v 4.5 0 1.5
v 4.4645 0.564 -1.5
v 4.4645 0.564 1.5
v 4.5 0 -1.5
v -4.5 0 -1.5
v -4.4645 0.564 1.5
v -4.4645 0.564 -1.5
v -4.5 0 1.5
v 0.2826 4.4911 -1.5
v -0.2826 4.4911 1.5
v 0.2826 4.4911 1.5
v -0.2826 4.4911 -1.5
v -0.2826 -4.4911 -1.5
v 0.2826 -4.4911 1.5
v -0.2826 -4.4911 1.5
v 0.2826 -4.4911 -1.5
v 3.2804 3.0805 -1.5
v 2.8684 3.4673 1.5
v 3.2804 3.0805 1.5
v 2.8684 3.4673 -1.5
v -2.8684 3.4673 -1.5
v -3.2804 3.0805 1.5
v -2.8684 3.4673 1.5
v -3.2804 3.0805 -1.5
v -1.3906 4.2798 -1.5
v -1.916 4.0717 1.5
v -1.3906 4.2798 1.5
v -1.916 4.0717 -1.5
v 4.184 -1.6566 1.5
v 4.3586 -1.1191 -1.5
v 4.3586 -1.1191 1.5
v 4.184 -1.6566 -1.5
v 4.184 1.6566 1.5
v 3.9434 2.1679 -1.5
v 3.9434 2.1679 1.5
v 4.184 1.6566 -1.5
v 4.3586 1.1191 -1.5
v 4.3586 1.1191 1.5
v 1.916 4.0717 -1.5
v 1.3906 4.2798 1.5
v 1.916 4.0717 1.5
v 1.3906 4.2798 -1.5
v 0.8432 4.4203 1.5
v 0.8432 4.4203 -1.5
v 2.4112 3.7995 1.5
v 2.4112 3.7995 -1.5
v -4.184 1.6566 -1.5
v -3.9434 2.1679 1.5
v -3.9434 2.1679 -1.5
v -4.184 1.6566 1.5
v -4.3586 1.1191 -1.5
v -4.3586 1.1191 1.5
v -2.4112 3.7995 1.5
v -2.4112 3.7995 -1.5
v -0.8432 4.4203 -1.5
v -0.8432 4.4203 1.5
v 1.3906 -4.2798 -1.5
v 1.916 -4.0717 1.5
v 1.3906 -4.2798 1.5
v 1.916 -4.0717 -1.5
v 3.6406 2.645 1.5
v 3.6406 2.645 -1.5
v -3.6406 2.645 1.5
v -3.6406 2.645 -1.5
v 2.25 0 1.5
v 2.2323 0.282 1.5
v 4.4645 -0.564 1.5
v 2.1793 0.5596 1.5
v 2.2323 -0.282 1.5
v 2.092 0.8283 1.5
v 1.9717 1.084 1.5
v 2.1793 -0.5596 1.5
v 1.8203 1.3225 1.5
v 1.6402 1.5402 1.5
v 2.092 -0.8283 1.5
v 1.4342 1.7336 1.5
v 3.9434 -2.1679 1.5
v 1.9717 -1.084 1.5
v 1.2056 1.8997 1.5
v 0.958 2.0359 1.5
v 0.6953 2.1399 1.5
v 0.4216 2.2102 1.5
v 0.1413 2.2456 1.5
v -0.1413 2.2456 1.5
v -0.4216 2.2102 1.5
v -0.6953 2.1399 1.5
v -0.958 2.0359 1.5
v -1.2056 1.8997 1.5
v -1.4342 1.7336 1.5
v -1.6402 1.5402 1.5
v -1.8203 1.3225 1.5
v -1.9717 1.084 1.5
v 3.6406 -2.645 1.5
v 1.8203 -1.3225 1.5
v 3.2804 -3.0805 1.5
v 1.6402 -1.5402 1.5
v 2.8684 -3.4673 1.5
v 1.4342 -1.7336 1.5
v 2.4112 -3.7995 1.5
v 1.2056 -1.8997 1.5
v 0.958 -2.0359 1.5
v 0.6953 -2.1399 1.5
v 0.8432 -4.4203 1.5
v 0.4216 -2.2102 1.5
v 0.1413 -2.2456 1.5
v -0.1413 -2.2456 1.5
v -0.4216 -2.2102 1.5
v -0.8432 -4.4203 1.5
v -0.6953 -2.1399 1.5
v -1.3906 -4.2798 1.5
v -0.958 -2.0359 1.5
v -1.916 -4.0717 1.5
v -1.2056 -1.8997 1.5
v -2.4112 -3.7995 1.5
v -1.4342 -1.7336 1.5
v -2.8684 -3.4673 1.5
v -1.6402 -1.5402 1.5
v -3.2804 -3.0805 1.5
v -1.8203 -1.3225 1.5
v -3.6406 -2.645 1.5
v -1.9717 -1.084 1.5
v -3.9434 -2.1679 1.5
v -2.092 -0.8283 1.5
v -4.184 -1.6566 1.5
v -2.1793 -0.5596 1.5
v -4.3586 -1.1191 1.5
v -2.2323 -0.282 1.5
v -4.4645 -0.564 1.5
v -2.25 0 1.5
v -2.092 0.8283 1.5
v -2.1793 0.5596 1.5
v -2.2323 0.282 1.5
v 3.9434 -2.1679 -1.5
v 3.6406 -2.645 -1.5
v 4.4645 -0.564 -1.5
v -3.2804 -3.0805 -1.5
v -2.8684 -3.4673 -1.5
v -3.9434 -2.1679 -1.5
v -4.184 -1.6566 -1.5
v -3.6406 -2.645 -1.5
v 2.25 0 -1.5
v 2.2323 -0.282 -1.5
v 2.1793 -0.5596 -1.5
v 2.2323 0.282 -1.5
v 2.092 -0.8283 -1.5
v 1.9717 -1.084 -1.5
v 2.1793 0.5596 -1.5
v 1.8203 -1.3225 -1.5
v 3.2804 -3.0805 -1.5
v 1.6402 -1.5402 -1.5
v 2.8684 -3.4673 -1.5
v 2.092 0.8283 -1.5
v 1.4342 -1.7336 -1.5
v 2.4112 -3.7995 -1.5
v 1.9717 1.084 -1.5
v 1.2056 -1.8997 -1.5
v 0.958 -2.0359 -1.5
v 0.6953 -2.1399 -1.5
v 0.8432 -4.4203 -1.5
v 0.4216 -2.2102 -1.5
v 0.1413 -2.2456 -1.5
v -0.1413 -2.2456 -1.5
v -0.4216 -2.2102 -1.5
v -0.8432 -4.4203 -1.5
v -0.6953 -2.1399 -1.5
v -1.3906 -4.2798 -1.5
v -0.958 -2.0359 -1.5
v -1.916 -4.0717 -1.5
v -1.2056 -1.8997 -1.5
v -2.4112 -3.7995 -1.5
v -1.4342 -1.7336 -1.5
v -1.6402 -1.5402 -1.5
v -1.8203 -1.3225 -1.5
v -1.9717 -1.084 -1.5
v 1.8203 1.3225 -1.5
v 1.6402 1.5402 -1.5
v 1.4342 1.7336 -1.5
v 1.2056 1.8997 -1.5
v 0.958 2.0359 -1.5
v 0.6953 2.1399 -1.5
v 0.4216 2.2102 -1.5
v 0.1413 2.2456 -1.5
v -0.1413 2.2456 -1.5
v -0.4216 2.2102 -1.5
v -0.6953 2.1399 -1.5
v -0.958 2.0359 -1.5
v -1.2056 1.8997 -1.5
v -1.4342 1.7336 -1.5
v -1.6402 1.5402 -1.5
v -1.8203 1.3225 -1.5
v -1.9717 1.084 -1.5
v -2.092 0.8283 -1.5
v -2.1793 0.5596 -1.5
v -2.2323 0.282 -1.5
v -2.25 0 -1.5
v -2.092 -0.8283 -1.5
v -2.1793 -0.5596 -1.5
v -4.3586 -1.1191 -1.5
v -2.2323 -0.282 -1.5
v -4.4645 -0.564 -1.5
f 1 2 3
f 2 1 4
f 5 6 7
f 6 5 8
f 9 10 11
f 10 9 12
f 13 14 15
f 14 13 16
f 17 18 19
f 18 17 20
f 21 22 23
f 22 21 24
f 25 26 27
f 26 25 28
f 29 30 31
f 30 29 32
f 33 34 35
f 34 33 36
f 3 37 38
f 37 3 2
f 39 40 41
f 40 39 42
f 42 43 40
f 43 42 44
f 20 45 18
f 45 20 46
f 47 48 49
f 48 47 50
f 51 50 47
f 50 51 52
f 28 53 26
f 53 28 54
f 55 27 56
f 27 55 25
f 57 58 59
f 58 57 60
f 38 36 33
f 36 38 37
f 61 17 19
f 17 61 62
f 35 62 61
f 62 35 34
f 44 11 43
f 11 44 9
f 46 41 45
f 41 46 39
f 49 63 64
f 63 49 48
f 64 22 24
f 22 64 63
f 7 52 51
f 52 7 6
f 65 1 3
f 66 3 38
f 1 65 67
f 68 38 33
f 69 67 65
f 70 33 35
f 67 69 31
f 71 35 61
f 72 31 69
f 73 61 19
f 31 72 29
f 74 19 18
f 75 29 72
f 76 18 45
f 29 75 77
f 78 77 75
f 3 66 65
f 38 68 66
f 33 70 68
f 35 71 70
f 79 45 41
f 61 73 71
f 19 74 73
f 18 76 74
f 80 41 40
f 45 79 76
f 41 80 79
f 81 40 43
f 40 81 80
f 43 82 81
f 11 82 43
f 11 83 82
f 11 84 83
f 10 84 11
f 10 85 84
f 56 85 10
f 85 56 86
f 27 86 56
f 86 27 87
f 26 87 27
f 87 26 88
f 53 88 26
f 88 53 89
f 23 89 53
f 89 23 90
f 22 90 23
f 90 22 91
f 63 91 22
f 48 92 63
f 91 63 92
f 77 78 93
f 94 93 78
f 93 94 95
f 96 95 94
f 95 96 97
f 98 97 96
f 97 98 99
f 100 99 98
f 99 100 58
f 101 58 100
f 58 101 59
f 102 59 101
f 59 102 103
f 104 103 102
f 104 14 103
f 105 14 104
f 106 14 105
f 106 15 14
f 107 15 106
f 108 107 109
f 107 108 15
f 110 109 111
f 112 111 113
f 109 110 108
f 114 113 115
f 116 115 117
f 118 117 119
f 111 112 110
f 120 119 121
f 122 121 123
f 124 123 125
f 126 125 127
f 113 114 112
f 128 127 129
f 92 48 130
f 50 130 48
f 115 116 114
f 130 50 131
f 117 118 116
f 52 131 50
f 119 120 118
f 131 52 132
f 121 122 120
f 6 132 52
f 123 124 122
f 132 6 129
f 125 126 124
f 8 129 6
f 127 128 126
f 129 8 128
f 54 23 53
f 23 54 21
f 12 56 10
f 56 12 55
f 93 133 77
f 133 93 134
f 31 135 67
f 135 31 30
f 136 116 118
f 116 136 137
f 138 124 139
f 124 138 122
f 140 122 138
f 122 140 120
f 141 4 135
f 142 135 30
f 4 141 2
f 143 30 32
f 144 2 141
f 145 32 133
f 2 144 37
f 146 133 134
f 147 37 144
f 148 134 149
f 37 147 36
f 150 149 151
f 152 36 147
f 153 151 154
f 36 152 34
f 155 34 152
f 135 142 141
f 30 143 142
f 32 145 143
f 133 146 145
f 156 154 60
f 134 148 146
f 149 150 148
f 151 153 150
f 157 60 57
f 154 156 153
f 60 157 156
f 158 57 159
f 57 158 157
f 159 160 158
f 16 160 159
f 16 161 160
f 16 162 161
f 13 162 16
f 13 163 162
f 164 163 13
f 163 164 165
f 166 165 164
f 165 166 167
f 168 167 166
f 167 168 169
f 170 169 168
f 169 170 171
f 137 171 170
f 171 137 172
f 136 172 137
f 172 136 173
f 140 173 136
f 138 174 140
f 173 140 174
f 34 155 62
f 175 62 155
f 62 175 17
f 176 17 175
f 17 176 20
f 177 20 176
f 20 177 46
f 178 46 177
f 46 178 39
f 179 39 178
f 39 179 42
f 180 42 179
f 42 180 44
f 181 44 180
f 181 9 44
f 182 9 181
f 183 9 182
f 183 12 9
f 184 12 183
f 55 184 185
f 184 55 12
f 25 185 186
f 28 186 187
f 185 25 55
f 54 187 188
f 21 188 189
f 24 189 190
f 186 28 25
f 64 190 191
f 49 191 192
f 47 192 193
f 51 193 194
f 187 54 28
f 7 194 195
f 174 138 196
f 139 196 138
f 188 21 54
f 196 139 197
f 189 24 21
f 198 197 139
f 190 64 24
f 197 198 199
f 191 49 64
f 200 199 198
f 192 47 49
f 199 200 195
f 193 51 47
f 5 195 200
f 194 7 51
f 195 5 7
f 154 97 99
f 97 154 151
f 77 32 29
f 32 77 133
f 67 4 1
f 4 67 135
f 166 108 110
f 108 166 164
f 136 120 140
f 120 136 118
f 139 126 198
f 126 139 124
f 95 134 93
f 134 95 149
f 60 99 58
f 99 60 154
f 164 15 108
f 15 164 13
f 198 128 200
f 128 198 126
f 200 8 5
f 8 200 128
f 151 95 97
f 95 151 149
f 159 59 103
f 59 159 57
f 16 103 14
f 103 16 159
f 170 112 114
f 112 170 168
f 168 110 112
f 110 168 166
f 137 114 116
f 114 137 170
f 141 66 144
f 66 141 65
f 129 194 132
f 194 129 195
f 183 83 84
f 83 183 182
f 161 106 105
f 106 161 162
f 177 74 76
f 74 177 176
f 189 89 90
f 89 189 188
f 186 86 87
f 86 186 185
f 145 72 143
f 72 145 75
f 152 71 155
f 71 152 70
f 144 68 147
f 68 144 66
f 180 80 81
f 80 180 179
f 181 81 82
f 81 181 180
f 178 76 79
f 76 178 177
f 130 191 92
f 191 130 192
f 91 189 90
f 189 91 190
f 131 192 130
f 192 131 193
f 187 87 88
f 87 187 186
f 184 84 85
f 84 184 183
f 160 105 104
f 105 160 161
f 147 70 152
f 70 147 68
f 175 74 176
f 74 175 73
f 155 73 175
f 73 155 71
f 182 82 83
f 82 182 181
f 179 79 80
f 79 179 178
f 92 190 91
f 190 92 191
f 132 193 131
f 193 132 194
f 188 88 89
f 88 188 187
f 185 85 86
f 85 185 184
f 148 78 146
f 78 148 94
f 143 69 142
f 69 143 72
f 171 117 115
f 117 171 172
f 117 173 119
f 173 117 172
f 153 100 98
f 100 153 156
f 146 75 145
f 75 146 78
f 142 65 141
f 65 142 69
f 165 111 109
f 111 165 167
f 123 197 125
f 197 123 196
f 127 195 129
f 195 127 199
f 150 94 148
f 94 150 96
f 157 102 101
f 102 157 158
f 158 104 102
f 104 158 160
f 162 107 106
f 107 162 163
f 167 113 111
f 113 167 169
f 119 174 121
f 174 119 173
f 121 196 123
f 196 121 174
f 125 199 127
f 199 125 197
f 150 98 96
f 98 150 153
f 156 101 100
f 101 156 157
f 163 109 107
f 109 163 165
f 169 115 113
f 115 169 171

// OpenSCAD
$fn = 50;


difference() {
	union() {
		translate(v = [0, 0, -1.5000000000]) {
			cylinder(h = 3, r = 4.5000000000);
		}
	}
	union() {
		translate(v = [0, 0, -100.0000000000]) {
			cylinder(h = 200, r = 2.2500000000);
		}
	}
}
